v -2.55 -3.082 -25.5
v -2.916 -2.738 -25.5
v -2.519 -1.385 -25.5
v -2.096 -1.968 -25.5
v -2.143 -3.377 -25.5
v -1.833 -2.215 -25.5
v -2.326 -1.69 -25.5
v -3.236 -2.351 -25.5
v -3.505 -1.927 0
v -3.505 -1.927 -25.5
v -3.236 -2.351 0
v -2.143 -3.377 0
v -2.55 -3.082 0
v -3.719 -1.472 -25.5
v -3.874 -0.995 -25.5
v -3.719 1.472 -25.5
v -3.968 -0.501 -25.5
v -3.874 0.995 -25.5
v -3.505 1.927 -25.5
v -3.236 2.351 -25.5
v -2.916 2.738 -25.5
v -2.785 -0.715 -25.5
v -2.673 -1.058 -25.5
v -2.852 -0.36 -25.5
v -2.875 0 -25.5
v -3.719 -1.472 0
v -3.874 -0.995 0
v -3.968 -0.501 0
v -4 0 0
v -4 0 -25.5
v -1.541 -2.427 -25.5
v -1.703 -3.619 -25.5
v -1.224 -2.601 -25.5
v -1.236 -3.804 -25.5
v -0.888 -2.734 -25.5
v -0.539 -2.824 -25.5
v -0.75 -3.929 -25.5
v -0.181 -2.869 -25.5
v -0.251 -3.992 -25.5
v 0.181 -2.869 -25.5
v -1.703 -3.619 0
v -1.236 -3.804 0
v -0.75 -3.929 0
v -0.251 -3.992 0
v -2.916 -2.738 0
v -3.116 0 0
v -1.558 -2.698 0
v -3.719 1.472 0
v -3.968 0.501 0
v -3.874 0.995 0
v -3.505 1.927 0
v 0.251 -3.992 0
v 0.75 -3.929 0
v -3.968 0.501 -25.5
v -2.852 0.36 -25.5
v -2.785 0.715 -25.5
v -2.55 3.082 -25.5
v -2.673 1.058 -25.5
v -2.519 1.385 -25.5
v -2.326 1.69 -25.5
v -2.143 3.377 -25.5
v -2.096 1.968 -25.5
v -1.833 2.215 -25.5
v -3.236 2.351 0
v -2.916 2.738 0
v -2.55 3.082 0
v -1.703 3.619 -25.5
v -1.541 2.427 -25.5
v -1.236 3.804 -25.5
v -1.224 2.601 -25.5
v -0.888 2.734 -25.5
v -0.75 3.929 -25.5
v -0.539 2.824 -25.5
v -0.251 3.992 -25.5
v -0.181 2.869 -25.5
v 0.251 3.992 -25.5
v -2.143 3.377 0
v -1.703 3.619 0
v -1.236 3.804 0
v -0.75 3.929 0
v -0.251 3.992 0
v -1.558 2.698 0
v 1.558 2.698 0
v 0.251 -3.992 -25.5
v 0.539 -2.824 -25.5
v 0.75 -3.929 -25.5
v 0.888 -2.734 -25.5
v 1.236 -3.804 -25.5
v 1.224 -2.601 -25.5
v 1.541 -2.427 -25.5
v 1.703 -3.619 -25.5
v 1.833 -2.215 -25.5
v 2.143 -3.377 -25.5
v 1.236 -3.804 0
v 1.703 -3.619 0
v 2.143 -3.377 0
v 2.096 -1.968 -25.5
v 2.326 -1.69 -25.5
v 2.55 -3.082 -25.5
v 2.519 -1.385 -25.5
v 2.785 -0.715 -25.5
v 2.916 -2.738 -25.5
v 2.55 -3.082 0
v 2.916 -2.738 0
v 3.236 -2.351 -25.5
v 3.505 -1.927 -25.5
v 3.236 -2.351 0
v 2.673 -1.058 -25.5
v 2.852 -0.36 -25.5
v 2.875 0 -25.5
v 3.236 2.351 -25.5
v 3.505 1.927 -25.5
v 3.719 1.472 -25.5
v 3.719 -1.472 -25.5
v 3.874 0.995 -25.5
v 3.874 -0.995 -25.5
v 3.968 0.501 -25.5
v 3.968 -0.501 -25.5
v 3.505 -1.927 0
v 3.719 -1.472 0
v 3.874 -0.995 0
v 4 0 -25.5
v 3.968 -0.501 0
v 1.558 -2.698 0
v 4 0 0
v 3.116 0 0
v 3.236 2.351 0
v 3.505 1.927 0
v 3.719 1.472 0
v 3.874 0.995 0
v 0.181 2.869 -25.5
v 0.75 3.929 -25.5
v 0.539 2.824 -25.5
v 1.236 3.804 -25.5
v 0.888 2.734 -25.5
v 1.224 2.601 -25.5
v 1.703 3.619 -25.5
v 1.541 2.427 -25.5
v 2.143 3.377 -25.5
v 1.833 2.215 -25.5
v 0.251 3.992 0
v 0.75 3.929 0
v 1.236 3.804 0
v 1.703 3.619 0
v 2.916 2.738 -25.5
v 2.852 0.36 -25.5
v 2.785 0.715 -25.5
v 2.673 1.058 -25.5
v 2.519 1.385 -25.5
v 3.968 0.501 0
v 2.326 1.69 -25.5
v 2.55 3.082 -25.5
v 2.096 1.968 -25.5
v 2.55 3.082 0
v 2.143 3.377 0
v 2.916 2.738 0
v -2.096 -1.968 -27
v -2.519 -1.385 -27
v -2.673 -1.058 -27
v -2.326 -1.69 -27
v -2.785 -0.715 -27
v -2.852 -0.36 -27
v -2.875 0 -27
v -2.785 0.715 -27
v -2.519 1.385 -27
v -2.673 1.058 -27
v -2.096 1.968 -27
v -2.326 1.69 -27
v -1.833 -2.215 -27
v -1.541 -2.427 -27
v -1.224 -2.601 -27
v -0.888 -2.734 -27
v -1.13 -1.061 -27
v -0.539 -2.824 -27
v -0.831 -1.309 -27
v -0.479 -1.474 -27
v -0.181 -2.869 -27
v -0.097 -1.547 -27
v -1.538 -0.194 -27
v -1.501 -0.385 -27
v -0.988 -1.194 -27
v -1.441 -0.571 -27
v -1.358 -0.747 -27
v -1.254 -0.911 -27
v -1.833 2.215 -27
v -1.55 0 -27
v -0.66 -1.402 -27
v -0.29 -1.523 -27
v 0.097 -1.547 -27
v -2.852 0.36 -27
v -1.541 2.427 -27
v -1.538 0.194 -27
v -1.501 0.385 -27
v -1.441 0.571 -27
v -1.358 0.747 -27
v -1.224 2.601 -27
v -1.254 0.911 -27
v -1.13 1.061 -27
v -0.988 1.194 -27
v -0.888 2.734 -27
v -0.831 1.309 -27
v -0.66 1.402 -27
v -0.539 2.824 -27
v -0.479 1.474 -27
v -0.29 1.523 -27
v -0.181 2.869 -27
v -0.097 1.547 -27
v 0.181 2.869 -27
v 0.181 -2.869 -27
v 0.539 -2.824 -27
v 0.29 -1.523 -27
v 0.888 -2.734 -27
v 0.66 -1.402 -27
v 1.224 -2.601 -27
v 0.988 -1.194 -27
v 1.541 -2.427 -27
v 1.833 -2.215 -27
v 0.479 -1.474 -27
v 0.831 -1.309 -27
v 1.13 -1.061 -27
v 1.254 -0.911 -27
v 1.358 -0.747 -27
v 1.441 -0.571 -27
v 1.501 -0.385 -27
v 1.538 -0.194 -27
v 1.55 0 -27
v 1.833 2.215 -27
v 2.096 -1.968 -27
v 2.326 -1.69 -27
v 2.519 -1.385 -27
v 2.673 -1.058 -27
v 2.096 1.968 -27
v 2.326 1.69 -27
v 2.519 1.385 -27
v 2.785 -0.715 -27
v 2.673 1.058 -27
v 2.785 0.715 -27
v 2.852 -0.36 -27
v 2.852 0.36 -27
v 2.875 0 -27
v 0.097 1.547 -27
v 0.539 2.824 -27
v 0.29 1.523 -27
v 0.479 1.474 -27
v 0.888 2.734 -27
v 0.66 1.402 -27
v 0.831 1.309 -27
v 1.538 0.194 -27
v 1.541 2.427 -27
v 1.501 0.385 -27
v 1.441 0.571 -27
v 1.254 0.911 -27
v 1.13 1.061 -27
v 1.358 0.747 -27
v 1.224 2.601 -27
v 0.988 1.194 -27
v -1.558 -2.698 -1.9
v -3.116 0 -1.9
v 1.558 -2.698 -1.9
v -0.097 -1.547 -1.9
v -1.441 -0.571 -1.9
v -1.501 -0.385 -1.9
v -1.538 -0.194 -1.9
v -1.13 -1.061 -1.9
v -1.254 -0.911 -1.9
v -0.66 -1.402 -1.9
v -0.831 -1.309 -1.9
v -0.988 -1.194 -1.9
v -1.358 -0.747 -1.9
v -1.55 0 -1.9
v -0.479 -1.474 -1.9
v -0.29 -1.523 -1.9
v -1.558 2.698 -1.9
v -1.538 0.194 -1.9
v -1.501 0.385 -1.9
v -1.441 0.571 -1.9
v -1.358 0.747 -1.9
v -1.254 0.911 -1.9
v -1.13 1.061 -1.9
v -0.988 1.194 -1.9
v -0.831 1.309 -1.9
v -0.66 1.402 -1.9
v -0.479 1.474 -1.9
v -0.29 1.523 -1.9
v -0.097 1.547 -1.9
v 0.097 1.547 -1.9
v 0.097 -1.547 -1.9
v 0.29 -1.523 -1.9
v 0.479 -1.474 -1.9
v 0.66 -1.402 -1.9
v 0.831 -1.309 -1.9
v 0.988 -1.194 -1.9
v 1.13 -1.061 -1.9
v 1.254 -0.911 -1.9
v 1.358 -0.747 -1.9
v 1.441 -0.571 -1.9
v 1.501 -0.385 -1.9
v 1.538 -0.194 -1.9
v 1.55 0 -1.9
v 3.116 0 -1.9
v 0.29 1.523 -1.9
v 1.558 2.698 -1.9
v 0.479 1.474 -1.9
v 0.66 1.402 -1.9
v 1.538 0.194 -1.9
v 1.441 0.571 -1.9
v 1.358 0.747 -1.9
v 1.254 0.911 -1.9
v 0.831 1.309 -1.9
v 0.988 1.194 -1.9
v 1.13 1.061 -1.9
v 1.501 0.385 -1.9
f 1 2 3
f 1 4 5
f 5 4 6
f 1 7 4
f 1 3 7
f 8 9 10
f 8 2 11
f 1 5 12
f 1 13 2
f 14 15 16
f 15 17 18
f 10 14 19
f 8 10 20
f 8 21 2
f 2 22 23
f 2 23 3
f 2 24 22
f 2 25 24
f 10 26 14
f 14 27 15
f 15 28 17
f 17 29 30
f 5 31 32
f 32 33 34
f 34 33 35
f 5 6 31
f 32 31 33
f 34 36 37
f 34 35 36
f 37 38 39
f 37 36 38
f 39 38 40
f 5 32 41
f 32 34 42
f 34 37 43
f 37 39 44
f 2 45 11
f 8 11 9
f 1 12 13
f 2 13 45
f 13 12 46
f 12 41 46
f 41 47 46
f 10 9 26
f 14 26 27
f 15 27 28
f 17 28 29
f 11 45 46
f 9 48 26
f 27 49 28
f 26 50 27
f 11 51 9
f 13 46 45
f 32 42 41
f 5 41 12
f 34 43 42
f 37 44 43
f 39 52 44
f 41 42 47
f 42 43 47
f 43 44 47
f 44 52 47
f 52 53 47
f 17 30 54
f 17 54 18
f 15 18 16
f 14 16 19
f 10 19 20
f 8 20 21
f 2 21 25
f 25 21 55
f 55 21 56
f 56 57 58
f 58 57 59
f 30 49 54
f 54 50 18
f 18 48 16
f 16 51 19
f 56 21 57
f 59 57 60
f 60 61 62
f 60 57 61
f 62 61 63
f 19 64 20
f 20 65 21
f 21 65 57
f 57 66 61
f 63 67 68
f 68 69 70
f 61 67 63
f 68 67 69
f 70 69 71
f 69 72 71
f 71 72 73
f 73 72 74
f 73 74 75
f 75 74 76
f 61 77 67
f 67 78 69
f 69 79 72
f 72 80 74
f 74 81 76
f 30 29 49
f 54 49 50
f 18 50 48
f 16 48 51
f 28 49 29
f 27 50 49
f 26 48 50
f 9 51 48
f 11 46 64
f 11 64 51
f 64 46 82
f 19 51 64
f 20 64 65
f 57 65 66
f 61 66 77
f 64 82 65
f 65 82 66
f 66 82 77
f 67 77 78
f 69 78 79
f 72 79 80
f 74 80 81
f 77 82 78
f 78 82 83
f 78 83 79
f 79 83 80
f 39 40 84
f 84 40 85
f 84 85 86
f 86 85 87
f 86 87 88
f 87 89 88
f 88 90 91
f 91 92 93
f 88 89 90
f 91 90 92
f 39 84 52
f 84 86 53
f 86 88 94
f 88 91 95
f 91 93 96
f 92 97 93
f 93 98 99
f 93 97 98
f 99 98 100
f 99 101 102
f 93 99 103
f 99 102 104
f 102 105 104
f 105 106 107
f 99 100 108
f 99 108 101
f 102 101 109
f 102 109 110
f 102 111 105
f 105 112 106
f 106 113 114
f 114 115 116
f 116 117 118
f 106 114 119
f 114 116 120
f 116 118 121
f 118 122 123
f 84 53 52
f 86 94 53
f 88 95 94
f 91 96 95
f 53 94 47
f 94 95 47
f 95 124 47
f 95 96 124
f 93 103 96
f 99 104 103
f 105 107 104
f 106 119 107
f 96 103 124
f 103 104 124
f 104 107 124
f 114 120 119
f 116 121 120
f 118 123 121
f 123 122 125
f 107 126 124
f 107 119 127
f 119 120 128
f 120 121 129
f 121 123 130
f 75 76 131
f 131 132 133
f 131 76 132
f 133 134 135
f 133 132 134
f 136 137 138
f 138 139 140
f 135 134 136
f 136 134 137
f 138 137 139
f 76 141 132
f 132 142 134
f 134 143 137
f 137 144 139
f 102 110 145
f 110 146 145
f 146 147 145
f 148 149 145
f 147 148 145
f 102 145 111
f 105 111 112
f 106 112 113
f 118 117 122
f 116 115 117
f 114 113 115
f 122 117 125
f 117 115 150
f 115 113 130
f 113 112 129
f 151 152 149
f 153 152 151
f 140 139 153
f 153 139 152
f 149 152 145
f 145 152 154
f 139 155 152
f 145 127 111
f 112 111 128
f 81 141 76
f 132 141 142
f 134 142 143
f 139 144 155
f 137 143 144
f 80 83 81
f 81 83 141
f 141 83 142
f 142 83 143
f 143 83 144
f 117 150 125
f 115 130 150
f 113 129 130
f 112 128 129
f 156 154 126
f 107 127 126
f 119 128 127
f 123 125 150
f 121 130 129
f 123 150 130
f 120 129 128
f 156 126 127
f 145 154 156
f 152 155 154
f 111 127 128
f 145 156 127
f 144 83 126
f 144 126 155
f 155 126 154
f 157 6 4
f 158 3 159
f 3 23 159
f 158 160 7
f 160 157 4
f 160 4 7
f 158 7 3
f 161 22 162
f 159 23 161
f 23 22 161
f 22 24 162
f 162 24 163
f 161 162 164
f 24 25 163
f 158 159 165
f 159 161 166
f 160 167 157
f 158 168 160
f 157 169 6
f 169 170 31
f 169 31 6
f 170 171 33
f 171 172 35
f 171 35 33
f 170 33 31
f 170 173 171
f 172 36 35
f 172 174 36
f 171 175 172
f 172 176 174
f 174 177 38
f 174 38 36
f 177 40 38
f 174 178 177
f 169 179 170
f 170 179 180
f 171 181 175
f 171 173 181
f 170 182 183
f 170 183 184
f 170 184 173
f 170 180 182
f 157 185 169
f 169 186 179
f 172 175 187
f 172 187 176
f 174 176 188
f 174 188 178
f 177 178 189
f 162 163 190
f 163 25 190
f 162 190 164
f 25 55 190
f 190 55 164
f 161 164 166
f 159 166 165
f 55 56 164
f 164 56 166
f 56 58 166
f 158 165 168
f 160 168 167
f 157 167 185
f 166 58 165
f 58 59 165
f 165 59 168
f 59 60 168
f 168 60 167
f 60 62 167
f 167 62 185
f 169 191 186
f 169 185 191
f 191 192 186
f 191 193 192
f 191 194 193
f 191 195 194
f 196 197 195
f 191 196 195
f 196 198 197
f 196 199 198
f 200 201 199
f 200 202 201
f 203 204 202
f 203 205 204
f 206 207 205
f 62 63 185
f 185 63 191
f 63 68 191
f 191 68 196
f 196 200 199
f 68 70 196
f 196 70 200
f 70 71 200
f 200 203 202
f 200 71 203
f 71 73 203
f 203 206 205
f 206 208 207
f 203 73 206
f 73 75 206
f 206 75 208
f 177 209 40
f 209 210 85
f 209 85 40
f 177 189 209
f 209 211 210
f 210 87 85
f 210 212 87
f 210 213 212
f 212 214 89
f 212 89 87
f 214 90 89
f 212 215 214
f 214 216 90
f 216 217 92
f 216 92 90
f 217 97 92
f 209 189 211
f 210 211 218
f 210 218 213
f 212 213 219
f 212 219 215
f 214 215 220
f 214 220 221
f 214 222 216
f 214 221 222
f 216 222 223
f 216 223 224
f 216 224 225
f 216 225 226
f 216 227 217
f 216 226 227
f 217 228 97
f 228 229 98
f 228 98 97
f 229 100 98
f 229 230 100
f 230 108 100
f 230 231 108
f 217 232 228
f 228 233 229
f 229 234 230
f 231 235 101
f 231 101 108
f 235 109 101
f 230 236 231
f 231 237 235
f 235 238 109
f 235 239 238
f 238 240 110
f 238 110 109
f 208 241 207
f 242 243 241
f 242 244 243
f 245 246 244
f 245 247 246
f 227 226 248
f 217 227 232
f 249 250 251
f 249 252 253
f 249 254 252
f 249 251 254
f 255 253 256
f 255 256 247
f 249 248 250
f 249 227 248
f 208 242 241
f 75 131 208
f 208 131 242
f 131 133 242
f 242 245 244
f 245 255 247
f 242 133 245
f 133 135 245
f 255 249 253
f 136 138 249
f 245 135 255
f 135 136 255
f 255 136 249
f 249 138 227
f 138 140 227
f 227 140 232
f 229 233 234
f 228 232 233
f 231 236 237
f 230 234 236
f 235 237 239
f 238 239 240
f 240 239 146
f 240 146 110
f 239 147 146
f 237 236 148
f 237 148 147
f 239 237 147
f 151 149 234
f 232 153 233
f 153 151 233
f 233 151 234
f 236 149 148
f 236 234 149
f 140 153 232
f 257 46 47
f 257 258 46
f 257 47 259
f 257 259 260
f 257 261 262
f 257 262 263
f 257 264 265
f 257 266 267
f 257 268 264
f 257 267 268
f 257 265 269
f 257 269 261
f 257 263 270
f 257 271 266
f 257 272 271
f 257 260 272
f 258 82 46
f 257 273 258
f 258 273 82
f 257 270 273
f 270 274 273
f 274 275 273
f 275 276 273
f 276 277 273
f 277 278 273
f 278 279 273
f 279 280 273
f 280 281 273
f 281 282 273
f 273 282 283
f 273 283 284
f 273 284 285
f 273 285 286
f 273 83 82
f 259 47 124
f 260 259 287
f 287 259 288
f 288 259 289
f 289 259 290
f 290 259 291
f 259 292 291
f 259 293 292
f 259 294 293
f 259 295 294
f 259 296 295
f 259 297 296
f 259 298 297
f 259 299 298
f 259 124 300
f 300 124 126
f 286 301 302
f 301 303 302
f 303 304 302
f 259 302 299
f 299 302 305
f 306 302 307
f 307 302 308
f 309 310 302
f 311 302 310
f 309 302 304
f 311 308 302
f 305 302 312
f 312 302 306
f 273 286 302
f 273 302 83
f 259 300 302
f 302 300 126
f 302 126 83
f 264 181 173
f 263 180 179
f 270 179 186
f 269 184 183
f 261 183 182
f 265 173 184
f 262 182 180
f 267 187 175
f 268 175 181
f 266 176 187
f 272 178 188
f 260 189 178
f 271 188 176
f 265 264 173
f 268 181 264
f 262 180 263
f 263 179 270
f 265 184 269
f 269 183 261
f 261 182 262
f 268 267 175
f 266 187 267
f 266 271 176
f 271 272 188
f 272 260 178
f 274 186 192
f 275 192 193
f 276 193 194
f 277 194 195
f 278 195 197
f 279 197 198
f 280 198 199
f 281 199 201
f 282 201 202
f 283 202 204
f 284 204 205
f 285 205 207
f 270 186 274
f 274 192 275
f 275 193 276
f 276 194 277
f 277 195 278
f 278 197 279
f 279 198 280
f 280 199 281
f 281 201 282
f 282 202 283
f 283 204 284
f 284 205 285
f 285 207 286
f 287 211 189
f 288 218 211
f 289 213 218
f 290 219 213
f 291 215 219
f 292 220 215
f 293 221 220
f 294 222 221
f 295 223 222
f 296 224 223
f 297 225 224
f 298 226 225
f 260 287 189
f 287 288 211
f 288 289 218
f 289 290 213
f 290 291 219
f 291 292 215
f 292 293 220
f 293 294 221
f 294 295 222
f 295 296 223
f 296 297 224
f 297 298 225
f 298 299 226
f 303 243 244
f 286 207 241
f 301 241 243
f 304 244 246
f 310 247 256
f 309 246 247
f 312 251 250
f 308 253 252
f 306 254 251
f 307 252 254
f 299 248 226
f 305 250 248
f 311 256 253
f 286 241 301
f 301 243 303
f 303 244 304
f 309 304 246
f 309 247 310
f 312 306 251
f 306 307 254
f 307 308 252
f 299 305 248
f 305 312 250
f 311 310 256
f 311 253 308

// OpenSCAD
$fn = 50;

difference() {
	union() {
		translate(v = [0, 0, -25.5]) {
			cylinder(h = 25.5, r = 4.0);
		}
		#translate(v = [0, 0, -27.0]) {
			cylinder(h = 27, r = 2.875);
		}
	}
	union() {
		translate(v = [0, 0, 0]) {
			rotate(a = [0, 0, 0]) {
				difference() {
					union() {
						translate(v = [0, 0, -1.9]) {
							linear_extrude(height = 1.9) {
								polygon(points = [[3.1158, 0.0], [1.5579000000000005, 2.698361953111554], [-1.5578999999999994, 2.6983619531115544], [-3.1158, 3.815754496783323e-16], [-1.5579000000000014, -2.6983619531115535], [1.557899999999998, -2.6983619531115552]]);
							}
						}
					}
					union();
				}
			}
		}
		#translate(v = [0, 0, -100.0]) {
			cylinder(h = 200, r = 1.55);
		}
	}
}
